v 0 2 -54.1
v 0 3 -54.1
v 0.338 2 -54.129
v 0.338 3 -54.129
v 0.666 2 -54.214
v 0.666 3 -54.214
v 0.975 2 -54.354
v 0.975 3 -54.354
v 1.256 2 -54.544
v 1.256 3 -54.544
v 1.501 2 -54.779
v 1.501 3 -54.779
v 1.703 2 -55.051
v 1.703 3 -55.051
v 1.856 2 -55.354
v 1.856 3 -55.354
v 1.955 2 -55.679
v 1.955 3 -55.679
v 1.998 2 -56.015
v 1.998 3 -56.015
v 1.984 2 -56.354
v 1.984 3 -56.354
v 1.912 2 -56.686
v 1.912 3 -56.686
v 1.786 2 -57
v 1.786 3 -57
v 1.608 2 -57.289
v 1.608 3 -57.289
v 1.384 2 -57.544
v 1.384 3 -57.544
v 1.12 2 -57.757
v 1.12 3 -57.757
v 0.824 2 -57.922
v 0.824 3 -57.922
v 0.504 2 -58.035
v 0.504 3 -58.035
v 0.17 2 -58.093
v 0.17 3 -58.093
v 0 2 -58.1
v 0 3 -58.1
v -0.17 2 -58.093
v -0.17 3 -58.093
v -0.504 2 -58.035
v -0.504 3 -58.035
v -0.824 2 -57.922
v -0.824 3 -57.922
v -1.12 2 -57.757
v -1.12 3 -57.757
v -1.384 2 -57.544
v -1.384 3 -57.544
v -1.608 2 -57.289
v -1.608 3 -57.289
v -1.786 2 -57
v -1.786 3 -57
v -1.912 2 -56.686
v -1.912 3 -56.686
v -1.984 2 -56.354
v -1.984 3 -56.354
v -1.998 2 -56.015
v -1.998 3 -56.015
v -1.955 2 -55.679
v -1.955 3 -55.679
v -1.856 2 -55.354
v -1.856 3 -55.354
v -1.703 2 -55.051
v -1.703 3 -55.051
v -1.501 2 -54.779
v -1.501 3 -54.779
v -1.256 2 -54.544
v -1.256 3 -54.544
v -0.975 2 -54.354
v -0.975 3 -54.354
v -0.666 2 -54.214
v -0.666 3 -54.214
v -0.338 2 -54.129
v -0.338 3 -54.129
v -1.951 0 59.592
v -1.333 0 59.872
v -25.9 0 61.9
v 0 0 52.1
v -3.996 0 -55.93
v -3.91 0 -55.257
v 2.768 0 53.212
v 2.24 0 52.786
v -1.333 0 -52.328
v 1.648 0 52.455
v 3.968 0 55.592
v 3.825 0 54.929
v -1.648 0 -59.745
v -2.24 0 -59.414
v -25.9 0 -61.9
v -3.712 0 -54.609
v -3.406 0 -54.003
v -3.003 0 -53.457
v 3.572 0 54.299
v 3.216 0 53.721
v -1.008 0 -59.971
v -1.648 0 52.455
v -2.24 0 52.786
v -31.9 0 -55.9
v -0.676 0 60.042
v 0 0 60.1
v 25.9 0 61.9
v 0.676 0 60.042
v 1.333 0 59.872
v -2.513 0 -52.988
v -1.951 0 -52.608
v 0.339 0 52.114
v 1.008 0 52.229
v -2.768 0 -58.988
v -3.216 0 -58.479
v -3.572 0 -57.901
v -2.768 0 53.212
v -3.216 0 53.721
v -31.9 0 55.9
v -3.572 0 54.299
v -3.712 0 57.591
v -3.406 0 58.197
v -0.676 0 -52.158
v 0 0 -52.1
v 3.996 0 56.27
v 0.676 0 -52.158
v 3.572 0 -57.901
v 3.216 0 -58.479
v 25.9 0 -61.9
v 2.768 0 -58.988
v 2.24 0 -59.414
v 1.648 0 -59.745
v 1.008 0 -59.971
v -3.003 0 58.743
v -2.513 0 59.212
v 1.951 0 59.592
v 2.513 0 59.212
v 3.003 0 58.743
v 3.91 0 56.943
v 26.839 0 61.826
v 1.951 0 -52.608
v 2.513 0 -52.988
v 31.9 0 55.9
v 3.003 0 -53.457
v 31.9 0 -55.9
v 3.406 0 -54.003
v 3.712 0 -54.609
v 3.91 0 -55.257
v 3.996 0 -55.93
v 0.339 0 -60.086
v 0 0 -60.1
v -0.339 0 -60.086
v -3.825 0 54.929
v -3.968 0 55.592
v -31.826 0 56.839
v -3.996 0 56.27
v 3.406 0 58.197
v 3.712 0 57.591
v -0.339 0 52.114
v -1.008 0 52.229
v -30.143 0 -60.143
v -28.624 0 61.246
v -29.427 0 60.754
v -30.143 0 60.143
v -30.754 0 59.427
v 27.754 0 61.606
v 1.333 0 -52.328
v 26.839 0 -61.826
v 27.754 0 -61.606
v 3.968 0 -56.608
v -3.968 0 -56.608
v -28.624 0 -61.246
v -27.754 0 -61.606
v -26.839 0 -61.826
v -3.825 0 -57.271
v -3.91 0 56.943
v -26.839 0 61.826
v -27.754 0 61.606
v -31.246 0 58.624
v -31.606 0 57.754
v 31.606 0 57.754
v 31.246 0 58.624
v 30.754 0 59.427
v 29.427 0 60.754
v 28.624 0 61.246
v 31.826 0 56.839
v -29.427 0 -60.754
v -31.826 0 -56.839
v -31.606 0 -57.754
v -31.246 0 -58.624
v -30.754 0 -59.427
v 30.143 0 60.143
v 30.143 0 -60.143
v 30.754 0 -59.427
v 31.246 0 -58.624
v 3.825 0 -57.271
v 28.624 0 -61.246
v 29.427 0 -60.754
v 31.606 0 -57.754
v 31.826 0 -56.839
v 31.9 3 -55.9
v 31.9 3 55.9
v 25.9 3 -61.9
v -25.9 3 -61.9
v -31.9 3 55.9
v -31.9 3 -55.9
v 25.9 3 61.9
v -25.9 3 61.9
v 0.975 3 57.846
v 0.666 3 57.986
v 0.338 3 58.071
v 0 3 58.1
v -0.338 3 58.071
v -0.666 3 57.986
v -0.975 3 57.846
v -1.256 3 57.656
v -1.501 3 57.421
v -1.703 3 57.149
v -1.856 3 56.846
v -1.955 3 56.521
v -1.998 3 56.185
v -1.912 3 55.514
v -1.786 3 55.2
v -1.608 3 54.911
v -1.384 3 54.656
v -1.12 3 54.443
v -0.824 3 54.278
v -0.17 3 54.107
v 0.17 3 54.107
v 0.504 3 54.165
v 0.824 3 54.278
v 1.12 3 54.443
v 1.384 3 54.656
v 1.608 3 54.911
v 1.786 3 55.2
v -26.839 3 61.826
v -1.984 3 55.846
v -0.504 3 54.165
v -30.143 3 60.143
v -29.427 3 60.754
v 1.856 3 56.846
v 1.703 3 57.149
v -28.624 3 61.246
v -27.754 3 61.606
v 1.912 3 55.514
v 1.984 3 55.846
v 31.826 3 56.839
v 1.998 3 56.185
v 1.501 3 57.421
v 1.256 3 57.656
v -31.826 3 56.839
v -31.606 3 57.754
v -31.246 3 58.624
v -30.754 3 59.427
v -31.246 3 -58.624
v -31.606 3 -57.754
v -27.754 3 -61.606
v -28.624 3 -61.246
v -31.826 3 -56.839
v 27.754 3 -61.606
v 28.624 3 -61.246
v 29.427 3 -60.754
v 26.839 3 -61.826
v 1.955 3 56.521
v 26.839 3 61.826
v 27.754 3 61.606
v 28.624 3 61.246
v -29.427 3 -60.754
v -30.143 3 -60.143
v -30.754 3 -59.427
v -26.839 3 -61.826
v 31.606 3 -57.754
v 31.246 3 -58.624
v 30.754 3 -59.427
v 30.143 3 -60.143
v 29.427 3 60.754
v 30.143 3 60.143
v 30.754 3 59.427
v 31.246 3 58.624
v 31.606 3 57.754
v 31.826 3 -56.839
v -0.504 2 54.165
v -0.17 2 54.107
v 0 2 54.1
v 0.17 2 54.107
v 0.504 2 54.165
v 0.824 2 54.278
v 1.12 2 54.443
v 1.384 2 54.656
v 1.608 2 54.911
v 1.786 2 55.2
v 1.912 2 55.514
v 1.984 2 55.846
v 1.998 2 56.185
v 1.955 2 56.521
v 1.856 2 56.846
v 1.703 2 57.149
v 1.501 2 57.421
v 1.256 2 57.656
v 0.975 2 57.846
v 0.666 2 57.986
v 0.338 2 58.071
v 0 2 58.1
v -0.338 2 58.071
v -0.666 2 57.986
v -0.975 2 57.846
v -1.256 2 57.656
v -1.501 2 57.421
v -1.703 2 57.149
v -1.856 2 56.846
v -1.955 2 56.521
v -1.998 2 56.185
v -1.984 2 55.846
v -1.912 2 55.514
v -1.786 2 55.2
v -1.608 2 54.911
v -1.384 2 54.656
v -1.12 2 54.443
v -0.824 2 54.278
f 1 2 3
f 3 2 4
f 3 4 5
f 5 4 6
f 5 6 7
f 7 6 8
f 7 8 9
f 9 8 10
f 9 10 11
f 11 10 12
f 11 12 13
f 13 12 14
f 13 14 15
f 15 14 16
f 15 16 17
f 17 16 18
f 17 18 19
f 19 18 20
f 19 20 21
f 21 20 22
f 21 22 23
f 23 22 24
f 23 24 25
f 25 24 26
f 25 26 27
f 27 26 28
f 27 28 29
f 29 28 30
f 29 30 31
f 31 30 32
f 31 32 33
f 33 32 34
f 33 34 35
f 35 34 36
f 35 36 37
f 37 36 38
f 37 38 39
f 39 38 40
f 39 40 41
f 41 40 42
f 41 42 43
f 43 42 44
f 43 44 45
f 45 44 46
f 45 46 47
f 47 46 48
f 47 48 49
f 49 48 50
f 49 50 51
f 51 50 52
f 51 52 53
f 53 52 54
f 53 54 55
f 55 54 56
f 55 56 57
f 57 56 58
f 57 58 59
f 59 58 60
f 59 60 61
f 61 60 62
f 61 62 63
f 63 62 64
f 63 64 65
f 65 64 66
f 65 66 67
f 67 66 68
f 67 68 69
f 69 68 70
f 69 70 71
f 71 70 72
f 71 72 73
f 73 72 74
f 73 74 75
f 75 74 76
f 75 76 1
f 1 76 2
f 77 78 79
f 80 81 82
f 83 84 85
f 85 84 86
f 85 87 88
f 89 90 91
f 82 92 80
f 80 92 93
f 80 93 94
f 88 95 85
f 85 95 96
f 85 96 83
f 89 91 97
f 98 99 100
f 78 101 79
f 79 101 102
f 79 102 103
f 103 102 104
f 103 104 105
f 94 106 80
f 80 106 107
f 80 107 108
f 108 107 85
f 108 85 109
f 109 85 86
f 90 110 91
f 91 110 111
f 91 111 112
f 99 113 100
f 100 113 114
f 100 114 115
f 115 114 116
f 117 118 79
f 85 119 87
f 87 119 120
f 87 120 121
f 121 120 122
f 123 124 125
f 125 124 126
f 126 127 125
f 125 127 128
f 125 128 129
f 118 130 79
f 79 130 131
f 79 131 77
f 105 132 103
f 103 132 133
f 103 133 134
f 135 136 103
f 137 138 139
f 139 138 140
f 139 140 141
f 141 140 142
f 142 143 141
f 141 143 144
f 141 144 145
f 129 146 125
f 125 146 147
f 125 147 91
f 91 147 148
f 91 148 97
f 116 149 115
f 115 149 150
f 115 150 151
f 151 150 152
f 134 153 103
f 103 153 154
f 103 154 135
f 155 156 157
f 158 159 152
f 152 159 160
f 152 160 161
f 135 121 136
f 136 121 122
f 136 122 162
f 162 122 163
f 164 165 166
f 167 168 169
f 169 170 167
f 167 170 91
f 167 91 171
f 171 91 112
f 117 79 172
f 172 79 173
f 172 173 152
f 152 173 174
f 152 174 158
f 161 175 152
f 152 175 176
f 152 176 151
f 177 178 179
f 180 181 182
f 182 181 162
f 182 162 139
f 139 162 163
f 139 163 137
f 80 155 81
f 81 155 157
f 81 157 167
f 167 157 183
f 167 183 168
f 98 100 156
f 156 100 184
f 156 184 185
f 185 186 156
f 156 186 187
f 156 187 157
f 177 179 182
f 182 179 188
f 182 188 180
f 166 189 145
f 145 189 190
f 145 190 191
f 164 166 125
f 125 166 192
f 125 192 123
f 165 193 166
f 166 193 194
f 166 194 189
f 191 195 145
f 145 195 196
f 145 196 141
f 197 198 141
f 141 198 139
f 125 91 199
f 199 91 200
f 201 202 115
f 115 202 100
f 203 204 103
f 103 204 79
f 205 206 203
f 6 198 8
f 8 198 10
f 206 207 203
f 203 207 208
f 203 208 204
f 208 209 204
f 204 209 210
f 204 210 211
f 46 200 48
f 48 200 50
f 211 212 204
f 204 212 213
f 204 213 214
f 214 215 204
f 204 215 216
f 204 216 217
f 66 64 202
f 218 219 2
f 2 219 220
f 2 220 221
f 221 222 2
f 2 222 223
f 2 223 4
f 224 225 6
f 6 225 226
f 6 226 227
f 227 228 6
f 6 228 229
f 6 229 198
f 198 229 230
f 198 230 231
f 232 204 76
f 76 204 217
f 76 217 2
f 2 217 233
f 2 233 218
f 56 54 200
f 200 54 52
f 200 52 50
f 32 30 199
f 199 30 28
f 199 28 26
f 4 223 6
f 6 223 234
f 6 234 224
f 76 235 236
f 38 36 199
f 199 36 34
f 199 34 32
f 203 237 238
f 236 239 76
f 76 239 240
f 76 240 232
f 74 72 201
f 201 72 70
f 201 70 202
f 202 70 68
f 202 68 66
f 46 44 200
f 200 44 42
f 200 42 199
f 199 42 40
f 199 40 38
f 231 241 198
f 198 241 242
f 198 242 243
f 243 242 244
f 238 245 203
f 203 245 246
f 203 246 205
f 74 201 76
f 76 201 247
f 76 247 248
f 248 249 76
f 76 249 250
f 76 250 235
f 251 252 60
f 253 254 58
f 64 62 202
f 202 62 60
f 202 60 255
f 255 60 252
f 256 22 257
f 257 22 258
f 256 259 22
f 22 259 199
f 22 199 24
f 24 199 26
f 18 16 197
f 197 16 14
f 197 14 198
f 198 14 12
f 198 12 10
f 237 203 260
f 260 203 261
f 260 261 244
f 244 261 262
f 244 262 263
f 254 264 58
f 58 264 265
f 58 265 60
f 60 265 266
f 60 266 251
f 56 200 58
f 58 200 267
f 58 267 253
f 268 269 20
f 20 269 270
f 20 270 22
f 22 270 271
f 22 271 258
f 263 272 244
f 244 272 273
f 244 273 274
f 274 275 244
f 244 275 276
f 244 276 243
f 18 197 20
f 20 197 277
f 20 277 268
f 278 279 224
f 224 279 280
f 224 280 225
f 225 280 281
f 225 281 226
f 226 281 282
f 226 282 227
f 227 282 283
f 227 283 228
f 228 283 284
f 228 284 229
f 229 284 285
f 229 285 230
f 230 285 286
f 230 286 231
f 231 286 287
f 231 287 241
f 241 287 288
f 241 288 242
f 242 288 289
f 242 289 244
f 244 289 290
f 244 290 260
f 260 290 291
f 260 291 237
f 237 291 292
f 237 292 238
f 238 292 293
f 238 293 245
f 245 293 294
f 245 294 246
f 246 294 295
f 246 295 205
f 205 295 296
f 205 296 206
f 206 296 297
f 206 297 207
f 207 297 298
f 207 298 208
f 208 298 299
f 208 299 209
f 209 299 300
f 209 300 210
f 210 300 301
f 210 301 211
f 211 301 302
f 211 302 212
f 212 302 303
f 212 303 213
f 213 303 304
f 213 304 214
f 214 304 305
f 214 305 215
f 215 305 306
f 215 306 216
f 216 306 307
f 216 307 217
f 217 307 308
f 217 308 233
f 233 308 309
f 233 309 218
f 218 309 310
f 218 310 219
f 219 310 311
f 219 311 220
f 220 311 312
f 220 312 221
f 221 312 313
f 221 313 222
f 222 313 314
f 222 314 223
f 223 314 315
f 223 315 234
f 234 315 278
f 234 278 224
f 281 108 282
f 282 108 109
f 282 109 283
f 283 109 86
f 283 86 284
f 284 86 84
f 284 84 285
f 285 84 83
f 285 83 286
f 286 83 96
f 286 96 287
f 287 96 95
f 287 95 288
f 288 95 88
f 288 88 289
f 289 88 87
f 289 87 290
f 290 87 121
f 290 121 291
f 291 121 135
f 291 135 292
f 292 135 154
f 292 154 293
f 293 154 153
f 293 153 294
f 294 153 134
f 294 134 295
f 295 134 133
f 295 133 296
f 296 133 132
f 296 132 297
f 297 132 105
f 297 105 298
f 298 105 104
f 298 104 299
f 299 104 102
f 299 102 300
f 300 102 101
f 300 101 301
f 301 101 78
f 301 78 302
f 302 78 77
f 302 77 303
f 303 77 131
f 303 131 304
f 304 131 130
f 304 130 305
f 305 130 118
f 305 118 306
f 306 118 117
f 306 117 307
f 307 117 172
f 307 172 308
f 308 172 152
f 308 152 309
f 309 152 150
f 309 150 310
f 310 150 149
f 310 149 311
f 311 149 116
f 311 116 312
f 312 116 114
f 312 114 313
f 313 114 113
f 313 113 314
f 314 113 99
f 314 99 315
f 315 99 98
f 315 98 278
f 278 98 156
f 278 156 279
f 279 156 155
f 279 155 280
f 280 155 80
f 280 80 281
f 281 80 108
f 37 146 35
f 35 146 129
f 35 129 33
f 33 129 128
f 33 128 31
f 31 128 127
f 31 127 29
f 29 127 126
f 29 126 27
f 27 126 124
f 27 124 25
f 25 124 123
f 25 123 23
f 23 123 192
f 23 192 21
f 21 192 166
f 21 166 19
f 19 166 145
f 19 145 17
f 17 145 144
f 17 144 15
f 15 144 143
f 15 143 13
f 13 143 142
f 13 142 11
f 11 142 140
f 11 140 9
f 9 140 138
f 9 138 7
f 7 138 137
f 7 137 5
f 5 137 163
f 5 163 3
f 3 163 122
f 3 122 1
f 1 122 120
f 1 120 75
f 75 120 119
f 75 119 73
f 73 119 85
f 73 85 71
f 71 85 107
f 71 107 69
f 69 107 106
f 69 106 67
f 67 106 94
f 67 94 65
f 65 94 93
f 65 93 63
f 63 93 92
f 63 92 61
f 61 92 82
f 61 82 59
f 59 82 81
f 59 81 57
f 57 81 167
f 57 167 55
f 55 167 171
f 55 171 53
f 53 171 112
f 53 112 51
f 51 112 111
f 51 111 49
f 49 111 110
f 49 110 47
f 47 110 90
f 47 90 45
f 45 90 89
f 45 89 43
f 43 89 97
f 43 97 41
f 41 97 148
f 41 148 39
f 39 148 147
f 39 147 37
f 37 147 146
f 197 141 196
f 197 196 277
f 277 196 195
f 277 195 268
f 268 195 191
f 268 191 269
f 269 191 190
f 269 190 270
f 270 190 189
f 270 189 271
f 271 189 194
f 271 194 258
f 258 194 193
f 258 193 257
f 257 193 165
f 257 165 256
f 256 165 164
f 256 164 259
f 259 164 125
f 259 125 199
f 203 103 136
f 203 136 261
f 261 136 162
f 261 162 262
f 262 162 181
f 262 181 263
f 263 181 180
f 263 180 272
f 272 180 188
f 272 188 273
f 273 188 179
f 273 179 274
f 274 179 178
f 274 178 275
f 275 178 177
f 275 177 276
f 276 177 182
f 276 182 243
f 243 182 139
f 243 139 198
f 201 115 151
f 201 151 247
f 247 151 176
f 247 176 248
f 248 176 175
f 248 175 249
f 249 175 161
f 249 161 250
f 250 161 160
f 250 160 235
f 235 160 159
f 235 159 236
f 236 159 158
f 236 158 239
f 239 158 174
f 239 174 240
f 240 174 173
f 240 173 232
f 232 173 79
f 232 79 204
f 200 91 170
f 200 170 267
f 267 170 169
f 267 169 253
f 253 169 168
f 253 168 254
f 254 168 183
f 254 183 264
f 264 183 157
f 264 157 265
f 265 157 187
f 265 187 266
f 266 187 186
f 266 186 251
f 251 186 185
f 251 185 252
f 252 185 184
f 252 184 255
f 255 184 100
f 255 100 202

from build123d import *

# Parameters (mm, degrees)
SKETCH1_W           = 63.8
SKETCH1_H           = 123.8
BOSS_EXTRUDE1_DEPTH = 3
SKETCH2_R           = 2
CUT_EXTRUDE1_DEPTH  = 70.700932562
FILLET1_R           = 6


with BuildPart() as part:
    # Sketch1 → Boss-Extrude1 (new body)
    with BuildSketch(Plane(origin=(0, 0, 0), x_dir=(1, 0, 0), z_dir=(0, 1, 0))):
        Rectangle(SKETCH1_W, SKETCH1_H)
    extrude(amount=BOSS_EXTRUDE1_DEPTH)

    # Sketch2 → Cut-Extrude1 (cut, through all)
    with BuildSketch(Plane(origin=(0, 3, 0), x_dir=(1, 0, 0), z_dir=(0, 1, 0))):
        with Locations(Location((0, -56.1, 0), (0, 0, 270))):
            Circle(SKETCH2_R)
    cut_extrude1 = extrude(amount=-CUT_EXTRUDE1_DEPTH, mode=Mode.SUBTRACT)

    # Sketch3 → CSK for M4 Hex Socket Countersunk Head Screw1 (revolve, cut)
    with BuildSketch(Plane(origin=(0, 0, 56.1), x_dir=(0, 0, -1), z_dir=(1, 0, 0))):
        Polygon((0, 0), (0, 3), (2, 3), (2, 2), (4, 0), align=None)
    csk_for_m4_hex_socket_countersunk_head_s = revolve(axis=Axis((0, -6.35, 56.1), (0, 1, 0)), mode=Mode.SUBTRACT)

    # Mirror1: Cut-Extrude1, CSK for M4 Hex Socket Countersunk Head Screw1 across plane
    add(cut_extrude1.mirror(Plane.XY), mode=Mode.SUBTRACT)
    add(csk_for_m4_hex_socket_countersunk_head_s.mirror(Plane.XY), mode=Mode.SUBTRACT)

    # Fillet1
    fillet1_edges = [part.edges().sort_by_distance(p)[0] for p in [
        (31.9, 1.5, 61.9),
        (-31.9, 1.5, 61.9),
        (-31.9, 1.5, -61.9),
        (31.9, 1.5, -61.9),
    ]]
    fillet(fillet1_edges, radius=FILLET1_R)


solid = part.part
